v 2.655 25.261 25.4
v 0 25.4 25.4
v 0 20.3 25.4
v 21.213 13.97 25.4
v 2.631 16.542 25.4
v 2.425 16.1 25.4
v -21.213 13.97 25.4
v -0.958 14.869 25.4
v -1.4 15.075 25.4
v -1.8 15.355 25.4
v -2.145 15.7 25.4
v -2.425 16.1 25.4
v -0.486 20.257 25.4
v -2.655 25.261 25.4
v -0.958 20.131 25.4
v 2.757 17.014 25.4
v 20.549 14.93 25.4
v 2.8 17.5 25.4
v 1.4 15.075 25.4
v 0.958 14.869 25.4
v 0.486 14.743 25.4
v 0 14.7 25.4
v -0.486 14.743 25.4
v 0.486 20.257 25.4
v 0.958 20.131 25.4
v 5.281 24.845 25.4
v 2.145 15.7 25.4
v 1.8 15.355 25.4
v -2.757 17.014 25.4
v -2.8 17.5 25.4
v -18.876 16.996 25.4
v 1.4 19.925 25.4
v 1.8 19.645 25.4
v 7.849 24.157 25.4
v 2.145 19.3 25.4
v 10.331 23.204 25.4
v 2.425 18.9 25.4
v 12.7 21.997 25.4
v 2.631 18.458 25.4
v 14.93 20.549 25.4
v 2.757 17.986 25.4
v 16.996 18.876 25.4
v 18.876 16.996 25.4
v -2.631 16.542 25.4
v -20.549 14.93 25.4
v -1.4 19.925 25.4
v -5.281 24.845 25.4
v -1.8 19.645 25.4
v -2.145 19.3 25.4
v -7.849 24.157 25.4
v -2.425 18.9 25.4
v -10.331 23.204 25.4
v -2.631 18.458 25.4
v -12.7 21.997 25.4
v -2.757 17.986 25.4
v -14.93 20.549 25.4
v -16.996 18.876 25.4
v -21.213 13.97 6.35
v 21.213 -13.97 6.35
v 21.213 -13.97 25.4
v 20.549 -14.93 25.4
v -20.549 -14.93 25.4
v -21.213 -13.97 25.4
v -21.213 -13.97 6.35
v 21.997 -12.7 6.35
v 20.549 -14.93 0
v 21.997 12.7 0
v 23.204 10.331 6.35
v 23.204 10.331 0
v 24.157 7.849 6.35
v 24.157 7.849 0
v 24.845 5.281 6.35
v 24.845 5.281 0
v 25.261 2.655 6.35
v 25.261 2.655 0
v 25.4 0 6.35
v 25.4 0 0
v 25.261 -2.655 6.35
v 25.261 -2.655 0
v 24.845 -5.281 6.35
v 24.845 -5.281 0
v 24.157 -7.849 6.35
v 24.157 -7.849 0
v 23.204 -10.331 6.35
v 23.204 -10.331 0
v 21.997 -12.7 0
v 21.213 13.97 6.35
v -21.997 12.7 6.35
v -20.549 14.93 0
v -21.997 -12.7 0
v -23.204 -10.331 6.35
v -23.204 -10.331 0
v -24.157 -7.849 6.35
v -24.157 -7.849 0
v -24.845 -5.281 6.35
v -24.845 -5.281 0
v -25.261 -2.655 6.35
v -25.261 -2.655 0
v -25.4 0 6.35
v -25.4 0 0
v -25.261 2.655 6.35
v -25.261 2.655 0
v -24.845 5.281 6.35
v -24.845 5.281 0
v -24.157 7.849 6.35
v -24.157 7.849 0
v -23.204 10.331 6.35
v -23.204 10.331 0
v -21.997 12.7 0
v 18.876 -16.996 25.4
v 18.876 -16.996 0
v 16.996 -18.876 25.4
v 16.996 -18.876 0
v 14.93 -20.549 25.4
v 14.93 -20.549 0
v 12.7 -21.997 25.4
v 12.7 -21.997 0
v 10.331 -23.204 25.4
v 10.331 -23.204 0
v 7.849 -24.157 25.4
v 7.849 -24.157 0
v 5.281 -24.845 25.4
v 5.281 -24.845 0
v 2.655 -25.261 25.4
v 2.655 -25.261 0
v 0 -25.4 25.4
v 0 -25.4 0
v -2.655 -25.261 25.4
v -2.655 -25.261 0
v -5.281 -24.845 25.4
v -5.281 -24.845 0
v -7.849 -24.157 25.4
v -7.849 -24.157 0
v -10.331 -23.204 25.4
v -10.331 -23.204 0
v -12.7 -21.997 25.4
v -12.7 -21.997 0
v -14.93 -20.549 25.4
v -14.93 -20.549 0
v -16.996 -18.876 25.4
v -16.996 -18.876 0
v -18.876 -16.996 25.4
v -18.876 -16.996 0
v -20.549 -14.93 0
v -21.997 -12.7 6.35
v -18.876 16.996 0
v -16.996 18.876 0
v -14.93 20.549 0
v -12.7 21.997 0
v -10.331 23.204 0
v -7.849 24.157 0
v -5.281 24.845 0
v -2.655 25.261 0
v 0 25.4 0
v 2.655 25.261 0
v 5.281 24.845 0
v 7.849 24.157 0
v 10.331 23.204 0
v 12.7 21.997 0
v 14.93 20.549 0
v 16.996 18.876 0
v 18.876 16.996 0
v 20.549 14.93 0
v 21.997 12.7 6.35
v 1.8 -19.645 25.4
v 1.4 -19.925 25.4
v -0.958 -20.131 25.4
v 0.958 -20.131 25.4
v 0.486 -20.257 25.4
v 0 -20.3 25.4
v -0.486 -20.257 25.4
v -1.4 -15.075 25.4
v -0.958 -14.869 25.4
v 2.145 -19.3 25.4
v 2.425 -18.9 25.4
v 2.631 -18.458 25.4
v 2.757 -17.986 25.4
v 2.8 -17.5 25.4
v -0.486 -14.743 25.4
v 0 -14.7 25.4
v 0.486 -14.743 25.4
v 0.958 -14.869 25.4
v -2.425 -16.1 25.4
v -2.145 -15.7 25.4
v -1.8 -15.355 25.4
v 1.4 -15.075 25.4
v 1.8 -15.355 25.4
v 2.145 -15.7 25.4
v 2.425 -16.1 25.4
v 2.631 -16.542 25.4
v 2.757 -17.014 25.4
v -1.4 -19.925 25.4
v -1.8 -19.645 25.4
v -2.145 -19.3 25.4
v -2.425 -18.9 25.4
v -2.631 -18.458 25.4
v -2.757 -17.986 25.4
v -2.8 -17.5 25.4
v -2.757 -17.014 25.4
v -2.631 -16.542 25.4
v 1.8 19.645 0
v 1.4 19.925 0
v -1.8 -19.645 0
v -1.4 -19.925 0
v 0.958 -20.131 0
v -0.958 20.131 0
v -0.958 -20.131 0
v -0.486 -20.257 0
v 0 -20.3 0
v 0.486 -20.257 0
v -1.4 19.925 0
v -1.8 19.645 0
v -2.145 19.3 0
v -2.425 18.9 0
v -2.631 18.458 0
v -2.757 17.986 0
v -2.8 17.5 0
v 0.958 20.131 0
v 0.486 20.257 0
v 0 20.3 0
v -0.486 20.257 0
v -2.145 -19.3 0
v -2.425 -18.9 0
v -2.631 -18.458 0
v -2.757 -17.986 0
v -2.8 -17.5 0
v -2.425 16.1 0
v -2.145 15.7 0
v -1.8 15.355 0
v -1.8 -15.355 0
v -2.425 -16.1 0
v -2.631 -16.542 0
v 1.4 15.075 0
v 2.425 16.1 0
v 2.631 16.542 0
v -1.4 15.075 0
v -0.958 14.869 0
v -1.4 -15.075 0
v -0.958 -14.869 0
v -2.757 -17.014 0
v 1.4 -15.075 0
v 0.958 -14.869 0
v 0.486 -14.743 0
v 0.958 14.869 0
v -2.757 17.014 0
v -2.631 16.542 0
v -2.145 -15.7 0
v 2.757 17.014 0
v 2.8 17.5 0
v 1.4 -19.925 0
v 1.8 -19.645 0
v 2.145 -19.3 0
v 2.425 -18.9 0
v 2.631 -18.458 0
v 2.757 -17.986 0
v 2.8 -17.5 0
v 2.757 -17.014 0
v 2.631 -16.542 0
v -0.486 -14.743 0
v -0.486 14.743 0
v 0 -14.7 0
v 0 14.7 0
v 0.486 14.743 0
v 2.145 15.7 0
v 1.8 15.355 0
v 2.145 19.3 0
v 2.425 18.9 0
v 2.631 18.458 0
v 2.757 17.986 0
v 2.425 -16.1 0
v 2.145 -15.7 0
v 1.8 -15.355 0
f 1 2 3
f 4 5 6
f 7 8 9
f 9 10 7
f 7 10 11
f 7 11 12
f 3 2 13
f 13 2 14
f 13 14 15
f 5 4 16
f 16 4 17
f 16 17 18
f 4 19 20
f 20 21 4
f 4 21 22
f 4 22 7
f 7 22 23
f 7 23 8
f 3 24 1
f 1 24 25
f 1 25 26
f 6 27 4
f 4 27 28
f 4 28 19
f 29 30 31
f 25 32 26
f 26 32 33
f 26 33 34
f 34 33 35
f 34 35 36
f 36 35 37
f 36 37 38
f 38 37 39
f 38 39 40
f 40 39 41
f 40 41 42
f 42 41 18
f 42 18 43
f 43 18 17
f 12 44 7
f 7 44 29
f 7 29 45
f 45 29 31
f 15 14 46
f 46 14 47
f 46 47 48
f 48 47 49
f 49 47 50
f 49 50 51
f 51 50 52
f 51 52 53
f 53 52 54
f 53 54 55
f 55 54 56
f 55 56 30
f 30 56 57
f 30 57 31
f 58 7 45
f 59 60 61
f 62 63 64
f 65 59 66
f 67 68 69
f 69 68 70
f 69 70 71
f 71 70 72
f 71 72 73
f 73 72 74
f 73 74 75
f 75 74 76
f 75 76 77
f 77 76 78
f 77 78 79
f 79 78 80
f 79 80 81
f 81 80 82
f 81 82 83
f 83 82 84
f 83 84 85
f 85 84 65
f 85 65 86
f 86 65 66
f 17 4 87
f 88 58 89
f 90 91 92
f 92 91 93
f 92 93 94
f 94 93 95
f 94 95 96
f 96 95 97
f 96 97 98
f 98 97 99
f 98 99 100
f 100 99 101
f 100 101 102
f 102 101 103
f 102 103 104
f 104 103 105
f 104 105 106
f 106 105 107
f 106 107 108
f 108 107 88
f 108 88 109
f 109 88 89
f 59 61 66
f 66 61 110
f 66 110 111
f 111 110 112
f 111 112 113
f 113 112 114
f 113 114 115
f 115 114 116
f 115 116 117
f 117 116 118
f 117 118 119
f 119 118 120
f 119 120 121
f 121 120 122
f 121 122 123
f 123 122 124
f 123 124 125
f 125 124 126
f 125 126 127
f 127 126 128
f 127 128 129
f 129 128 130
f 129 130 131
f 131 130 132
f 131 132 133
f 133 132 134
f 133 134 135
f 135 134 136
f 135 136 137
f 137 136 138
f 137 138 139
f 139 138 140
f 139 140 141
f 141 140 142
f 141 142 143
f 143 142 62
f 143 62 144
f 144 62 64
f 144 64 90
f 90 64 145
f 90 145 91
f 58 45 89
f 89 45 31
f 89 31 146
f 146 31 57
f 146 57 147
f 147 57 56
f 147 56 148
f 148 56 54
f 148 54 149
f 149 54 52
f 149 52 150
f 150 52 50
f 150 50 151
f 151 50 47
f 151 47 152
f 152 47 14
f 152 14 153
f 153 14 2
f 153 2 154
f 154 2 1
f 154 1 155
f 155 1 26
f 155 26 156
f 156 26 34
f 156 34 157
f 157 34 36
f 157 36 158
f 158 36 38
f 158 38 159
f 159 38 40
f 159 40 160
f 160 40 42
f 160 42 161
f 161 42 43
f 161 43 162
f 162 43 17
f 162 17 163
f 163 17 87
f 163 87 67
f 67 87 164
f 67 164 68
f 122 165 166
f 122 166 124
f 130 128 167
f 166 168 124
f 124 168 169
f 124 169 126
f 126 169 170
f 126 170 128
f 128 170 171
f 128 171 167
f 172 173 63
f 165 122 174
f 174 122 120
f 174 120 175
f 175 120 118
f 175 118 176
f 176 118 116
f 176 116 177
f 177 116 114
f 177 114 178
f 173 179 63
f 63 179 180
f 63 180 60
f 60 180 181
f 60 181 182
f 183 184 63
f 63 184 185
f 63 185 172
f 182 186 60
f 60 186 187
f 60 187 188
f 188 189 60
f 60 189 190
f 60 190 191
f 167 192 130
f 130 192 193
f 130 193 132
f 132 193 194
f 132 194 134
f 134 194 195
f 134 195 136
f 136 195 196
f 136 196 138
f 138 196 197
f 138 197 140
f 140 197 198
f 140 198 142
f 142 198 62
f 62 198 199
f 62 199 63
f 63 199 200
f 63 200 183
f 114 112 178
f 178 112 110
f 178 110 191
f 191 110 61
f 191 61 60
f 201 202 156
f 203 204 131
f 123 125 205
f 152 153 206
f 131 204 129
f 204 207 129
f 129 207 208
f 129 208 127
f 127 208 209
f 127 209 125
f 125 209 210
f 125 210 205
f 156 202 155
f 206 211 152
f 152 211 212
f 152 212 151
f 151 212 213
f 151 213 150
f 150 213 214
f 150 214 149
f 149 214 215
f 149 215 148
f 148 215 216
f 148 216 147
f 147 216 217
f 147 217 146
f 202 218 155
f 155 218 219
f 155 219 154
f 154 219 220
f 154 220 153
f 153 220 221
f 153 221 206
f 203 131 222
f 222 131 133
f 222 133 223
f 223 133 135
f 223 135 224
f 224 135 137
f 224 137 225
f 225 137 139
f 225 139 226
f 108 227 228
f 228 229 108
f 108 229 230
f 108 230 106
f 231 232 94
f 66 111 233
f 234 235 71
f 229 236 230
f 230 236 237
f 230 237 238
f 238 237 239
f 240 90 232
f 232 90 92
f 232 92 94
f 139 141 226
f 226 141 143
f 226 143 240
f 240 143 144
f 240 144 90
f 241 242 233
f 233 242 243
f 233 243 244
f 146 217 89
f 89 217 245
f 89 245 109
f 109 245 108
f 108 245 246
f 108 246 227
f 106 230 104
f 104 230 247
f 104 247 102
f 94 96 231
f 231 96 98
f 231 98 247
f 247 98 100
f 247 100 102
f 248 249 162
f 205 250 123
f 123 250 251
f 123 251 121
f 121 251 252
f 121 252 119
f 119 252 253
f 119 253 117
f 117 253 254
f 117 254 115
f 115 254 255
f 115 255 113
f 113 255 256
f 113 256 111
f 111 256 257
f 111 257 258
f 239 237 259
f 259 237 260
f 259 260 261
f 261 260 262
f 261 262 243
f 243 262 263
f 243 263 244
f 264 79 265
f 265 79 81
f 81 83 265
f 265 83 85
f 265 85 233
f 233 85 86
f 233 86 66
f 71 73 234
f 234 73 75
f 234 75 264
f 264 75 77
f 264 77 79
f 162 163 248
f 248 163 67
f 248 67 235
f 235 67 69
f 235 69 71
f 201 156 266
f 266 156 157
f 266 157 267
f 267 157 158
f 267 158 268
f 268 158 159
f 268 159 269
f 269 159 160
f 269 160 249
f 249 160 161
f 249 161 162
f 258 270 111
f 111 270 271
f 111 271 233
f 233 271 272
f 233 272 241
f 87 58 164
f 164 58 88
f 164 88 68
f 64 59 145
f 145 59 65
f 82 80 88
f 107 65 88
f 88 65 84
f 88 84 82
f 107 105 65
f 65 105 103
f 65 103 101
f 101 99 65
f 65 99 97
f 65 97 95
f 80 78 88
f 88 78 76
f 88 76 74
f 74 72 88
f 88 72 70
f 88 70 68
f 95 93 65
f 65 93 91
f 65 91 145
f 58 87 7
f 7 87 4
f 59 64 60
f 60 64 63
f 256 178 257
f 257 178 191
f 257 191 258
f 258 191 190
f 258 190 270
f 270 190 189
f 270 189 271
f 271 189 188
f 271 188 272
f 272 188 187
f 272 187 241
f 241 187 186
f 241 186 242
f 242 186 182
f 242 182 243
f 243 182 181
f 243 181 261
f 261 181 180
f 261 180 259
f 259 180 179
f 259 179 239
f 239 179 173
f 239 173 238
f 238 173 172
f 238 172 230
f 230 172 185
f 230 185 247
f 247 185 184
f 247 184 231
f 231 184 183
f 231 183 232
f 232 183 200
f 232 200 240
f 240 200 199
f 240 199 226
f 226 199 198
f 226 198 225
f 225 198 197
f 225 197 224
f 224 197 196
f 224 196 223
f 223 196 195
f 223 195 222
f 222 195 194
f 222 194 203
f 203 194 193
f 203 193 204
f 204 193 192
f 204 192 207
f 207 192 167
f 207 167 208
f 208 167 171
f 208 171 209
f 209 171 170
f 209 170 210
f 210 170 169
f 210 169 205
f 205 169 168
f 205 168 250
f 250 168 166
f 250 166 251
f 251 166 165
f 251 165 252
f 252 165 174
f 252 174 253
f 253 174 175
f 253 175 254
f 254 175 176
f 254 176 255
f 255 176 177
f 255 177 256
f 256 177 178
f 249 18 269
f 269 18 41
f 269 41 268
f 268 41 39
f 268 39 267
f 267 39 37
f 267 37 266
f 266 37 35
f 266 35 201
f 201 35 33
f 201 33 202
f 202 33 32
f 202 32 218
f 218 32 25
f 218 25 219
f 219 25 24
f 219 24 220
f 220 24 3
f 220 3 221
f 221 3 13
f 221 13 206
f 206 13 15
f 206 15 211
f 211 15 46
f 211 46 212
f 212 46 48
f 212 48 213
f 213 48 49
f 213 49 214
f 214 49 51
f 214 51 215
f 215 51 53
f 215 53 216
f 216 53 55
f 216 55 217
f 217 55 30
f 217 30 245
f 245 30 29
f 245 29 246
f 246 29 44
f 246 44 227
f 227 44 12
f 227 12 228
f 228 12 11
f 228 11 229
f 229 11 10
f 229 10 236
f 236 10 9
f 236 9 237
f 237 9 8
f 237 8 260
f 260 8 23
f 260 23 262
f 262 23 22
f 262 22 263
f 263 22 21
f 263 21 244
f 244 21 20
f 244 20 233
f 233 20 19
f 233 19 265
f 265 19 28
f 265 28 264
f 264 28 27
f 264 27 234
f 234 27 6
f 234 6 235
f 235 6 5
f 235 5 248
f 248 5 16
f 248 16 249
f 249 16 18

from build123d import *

# Parameters (mm, degrees)
SKETCH1_R           = 25.4
BOSS_EXTRUDE1_DEPTH = 25.4
CUT_EXTRUDE1_DEPTH  = 19.05
SKETCH3_R           = 2.8
CUT_EXTRUDE2_DEPTH  = 44.994090512


with BuildPart() as part:
    # Sketch1 → Boss-Extrude1 (new body)
    with BuildSketch(Plane.XY):
        Circle(SKETCH1_R)
    extrude(amount=BOSS_EXTRUDE1_DEPTH)

    # Sketch2 → Cut-Extrude1 (cut)
    with BuildSketch(Plane.XY.offset(25.4)):
        with BuildLine():
            Line((-21.945834457, 13.97), (21.945834457, 13.97))
            ThreePointArc((21.945834457, 13.97), (26.015006247, 0), (21.945834457, -13.97))
            Line((21.945834457, -13.97), (-21.945834457, -13.97))
            ThreePointArc((-21.945834457, -13.97), (-26.015006247, 0), (-21.945834457, 13.97))
        make_face()
    extrude(amount=-CUT_EXTRUDE1_DEPTH, mode=Mode.SUBTRACT)

    # Sketch3 → Cut-Extrude2 (cut, through all)
    with BuildSketch(Plane.XY.offset(25.4)):
        with Locations((0, 17.5)):
            Circle(SKETCH3_R)
        with Locations((0, -17.5)):
            Circle(SKETCH3_R)
    extrude(amount=-CUT_EXTRUDE2_DEPTH, mode=Mode.SUBTRACT)


solid = part.part
